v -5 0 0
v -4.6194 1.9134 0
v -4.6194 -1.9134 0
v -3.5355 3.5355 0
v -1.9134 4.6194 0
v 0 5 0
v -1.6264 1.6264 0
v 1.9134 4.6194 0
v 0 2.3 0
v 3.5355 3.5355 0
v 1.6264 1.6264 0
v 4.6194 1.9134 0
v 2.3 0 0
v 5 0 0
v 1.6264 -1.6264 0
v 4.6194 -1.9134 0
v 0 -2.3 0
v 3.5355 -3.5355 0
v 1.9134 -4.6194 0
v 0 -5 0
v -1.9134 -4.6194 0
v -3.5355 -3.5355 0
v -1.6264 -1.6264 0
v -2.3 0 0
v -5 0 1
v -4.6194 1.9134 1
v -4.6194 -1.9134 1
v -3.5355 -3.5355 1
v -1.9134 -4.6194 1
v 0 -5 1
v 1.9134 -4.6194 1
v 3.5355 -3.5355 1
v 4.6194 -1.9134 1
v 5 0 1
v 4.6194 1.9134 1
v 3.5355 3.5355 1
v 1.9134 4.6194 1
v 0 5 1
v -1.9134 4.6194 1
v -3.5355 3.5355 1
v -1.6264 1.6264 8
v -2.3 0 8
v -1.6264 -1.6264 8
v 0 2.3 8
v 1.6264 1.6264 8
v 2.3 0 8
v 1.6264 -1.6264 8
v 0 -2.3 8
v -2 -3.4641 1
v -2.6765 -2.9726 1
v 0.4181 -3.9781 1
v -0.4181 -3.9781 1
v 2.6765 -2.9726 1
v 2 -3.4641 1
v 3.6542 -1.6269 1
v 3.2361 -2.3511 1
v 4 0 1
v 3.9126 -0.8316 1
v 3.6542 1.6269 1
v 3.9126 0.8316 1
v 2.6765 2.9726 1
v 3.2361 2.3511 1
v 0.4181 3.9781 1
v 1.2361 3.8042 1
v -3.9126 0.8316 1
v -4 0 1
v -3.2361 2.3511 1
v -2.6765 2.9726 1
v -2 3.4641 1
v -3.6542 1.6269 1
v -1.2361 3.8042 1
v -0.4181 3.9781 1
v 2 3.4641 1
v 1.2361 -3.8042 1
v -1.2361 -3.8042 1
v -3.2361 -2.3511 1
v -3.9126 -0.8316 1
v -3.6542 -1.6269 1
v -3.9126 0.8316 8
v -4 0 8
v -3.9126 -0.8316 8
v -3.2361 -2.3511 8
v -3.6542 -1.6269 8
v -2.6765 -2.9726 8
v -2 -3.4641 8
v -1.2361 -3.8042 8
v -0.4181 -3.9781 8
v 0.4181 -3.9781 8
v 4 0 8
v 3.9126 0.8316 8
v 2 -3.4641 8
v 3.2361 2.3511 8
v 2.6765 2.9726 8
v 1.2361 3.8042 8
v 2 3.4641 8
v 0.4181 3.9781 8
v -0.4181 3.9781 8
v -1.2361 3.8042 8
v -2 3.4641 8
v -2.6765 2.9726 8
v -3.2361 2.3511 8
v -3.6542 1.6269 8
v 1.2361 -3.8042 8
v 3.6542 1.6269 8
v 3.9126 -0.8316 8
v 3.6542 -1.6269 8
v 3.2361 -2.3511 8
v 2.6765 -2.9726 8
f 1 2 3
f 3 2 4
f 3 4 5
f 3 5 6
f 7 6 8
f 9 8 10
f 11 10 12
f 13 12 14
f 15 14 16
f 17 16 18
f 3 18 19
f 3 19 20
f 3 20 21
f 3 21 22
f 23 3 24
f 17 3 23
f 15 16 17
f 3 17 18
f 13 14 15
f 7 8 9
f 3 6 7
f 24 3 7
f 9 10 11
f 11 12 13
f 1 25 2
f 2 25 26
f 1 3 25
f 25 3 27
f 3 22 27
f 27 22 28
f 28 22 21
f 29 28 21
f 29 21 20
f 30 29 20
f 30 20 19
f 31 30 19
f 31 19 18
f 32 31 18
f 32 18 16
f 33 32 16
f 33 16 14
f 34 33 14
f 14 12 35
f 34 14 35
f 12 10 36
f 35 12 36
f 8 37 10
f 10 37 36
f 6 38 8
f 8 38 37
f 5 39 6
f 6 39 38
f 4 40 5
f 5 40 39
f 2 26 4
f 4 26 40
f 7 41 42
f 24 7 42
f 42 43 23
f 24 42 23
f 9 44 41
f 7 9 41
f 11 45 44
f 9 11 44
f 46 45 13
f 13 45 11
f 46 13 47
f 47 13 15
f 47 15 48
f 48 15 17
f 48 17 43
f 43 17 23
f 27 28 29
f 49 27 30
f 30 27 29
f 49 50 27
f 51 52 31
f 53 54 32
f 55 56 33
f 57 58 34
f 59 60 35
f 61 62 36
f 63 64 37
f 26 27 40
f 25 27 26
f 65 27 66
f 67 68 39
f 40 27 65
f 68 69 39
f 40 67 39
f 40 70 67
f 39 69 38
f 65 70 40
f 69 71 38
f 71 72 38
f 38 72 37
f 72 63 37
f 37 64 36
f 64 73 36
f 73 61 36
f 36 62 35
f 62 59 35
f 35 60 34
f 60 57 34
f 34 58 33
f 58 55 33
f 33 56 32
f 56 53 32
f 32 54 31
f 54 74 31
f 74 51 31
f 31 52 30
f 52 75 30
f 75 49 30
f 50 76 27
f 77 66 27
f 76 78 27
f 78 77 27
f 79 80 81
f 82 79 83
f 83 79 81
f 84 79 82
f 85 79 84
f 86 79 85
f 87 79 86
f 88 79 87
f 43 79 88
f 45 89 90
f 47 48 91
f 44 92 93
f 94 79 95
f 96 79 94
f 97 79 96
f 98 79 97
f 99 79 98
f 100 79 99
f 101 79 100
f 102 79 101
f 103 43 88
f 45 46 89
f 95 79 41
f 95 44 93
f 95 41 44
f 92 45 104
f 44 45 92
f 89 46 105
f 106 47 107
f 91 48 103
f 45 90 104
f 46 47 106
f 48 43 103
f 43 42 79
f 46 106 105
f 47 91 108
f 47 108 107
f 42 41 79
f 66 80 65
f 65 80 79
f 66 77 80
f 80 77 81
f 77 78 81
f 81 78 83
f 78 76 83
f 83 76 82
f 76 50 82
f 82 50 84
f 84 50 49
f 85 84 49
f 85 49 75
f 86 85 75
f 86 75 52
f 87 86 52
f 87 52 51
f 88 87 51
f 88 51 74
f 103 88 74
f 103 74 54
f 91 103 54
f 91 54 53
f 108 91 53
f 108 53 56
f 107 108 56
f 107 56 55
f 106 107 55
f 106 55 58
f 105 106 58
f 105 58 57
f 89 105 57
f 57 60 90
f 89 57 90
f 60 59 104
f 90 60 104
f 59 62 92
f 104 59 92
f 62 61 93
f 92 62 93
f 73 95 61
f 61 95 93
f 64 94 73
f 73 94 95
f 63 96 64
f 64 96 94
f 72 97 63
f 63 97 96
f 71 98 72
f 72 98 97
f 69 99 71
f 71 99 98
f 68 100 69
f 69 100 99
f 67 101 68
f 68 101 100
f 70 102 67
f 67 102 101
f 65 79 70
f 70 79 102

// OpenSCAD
// bushing for the bearing center, to put it over the wire more easily


use <MCAD/bearing.scad>;


difference() {
  cylinder(r=5, h=8);
  translate([0,0,1]) bearing();
  translate([0,0,-1]) cylinder(r=2.3, h=10);
}
